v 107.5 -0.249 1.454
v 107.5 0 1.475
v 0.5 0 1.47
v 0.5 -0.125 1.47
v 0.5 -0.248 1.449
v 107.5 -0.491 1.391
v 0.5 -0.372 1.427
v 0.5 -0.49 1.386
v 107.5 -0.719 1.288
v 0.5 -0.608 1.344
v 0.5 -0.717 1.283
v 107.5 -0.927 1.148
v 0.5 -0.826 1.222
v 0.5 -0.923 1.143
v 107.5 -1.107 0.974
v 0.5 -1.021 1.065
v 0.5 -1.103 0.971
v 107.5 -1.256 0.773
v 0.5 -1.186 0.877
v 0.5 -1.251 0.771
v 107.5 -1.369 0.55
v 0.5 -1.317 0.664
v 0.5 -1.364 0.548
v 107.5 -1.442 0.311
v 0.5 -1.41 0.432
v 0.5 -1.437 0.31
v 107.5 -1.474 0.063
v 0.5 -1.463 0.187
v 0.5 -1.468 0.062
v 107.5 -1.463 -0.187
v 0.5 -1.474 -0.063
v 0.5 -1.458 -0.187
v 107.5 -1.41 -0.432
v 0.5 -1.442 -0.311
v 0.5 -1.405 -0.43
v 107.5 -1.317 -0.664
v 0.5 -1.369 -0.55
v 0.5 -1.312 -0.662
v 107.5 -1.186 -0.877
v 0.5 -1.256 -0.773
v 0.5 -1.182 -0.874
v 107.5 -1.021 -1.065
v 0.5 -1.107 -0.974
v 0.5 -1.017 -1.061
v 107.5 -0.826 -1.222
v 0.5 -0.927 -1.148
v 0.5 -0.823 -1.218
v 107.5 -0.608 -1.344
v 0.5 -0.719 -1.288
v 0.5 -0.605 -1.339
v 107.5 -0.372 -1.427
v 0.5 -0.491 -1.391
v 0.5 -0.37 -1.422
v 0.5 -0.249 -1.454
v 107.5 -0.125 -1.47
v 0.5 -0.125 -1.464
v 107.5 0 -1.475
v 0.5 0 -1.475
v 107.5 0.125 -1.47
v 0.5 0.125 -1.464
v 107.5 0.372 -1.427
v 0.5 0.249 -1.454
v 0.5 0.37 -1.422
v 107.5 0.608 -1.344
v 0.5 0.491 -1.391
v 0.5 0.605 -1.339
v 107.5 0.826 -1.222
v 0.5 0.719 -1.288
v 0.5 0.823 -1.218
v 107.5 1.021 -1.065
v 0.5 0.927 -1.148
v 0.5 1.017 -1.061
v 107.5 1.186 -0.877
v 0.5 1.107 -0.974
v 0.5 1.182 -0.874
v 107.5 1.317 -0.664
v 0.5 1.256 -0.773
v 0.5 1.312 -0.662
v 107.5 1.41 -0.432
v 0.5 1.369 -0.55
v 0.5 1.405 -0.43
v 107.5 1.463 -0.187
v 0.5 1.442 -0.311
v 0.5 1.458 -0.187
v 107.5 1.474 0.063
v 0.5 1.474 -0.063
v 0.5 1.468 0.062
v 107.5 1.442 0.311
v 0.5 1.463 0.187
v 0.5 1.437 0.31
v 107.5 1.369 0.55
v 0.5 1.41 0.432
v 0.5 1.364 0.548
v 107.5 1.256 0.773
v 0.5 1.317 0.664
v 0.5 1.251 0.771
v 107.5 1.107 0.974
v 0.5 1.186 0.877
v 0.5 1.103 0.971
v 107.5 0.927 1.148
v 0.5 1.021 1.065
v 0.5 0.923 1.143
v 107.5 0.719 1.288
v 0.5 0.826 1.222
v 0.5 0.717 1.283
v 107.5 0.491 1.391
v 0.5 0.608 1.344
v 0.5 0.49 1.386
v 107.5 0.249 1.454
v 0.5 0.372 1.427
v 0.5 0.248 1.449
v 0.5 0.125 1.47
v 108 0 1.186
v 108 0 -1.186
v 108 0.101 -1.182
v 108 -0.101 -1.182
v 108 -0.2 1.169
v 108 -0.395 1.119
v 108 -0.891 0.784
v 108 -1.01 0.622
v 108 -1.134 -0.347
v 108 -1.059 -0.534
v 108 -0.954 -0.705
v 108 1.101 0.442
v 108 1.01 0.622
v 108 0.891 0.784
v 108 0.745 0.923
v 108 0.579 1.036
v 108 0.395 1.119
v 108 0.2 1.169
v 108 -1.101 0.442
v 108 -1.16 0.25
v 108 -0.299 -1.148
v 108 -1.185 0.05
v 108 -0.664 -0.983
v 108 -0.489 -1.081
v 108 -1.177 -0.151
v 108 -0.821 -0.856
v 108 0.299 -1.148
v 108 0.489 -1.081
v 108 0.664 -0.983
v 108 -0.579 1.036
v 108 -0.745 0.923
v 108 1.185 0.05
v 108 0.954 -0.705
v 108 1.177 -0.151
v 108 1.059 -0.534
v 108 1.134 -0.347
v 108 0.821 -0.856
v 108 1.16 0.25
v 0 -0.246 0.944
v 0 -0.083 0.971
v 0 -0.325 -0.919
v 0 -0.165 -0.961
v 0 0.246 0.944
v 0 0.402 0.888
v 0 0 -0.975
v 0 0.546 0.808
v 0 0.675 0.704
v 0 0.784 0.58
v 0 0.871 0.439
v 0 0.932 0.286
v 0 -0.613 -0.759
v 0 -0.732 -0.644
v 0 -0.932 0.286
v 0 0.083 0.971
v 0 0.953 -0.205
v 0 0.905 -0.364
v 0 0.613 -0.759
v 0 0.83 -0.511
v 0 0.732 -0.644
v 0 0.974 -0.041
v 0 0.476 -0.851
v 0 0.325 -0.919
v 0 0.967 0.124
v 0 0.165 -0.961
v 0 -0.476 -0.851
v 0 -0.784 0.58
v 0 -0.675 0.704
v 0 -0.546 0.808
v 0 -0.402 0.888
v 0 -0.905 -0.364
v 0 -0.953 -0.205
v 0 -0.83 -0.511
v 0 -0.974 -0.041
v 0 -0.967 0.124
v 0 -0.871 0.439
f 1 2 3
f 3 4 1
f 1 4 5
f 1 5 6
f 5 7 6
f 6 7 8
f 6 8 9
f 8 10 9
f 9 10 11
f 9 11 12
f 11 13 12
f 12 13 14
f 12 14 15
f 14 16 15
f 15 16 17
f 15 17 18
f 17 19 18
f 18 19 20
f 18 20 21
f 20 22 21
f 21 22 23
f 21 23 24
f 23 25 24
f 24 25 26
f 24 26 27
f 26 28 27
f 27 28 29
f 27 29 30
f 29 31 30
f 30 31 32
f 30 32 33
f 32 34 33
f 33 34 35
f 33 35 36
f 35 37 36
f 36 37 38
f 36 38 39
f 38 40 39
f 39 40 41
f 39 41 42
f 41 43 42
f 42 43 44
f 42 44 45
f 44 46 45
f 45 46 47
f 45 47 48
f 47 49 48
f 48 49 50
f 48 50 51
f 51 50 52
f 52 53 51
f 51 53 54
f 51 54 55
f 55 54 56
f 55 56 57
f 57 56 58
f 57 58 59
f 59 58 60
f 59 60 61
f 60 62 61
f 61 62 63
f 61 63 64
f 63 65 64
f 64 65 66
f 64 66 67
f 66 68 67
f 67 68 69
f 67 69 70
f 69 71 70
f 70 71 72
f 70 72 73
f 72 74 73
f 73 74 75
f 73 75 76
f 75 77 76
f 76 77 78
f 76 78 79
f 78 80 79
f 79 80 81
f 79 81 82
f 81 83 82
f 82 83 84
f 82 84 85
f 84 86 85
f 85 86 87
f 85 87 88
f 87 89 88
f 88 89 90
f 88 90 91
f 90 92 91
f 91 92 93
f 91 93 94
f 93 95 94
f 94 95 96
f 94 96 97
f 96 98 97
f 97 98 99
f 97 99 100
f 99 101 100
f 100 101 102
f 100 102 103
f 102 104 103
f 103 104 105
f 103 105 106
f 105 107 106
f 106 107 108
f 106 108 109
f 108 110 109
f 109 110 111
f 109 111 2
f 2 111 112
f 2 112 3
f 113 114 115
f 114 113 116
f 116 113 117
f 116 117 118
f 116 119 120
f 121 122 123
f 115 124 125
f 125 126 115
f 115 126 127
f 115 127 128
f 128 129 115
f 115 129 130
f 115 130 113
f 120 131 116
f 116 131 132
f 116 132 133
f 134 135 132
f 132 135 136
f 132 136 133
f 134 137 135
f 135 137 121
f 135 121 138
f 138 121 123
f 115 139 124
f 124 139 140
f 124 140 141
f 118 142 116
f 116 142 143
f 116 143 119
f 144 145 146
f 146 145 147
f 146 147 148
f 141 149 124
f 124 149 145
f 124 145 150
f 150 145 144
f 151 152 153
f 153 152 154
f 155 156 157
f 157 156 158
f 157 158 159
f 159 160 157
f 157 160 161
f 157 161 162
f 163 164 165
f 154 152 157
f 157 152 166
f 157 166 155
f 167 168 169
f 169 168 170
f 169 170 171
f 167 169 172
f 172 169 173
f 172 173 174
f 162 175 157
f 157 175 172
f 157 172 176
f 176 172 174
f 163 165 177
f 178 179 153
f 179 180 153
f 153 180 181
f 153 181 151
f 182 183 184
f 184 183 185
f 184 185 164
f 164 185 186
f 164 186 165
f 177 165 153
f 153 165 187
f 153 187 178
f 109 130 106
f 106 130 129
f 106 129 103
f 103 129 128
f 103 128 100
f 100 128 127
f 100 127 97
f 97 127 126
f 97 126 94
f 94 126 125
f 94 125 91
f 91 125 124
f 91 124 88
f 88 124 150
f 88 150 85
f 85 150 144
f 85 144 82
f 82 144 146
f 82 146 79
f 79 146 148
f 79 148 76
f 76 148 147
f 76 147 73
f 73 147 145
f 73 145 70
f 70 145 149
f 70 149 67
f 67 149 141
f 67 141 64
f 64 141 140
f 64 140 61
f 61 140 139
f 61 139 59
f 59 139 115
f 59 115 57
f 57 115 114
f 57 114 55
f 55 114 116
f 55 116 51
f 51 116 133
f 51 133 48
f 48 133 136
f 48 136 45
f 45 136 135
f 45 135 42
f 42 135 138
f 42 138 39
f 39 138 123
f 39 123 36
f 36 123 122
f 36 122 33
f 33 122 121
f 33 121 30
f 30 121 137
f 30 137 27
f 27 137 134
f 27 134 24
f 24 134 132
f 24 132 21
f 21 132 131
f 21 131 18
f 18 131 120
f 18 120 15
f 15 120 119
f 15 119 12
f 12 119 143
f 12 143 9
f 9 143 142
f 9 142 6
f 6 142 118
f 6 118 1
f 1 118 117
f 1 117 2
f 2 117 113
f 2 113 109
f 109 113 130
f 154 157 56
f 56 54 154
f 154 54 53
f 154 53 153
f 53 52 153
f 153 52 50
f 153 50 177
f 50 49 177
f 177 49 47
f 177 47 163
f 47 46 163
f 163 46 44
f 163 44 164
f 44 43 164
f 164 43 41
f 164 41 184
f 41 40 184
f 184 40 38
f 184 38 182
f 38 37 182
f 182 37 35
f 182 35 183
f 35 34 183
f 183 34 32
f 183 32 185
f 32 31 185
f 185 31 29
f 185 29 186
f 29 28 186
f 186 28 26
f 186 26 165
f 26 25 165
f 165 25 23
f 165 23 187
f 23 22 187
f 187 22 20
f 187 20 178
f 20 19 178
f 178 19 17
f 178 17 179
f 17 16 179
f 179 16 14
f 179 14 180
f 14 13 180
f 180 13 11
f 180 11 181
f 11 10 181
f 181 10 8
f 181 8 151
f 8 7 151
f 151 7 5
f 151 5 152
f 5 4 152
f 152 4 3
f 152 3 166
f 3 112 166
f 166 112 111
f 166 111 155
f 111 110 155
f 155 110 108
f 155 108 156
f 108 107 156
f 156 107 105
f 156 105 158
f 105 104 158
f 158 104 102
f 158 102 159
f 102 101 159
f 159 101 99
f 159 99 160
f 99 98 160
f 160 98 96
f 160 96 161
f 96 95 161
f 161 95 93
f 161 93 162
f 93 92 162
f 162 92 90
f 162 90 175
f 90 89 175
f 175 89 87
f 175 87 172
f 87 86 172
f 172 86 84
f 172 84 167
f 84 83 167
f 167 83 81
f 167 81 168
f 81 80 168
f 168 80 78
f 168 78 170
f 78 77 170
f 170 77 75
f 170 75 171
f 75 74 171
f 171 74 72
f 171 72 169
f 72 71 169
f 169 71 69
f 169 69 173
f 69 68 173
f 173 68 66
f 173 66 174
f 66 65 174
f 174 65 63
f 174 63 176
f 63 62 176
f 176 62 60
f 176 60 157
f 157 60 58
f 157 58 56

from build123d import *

# Parameters (mm, degrees)
CROQUIS1_R              = 1.475
SALIENTE_EXTRUIR1_DEPTH = 108
CHAFL_N1_SIZE           = 0.5
CHAFL_N1_SIZE2          = 0.288675135
CHAFL_N2_SIZE           = 0.5


with BuildPart() as part:
    # Croquis1 → Saliente-Extruir1 (new body)
    with BuildSketch(Plane(origin=(0, 0, 0), x_dir=(0, 0, -1), z_dir=(1, 0, 0))):
        Circle(CROQUIS1_R)
    extrude(amount=SALIENTE_EXTRUIR1_DEPTH)

    # Chaflán1
    chafl_n1_edges = [part.edges().sort_by_distance(p)[0] for p in [
        (108, 0, 1.475),
    ]]
    chafl_n1_side = [part.faces().sort_by_distance(p)[0] for p in [
        (54, 0, 1.475),
    ]]
    chamfer(chafl_n1_edges, length=CHAFL_N1_SIZE, length2=CHAFL_N1_SIZE2, reference=chafl_n1_side[0])

    # Chaflán2
    chafl_n2_edges = [part.edges().sort_by_distance(p)[0] for p in [
        (0, 0, 1.475),
    ]]
    chamfer(chafl_n2_edges, length=CHAFL_N2_SIZE)


solid = part.part
